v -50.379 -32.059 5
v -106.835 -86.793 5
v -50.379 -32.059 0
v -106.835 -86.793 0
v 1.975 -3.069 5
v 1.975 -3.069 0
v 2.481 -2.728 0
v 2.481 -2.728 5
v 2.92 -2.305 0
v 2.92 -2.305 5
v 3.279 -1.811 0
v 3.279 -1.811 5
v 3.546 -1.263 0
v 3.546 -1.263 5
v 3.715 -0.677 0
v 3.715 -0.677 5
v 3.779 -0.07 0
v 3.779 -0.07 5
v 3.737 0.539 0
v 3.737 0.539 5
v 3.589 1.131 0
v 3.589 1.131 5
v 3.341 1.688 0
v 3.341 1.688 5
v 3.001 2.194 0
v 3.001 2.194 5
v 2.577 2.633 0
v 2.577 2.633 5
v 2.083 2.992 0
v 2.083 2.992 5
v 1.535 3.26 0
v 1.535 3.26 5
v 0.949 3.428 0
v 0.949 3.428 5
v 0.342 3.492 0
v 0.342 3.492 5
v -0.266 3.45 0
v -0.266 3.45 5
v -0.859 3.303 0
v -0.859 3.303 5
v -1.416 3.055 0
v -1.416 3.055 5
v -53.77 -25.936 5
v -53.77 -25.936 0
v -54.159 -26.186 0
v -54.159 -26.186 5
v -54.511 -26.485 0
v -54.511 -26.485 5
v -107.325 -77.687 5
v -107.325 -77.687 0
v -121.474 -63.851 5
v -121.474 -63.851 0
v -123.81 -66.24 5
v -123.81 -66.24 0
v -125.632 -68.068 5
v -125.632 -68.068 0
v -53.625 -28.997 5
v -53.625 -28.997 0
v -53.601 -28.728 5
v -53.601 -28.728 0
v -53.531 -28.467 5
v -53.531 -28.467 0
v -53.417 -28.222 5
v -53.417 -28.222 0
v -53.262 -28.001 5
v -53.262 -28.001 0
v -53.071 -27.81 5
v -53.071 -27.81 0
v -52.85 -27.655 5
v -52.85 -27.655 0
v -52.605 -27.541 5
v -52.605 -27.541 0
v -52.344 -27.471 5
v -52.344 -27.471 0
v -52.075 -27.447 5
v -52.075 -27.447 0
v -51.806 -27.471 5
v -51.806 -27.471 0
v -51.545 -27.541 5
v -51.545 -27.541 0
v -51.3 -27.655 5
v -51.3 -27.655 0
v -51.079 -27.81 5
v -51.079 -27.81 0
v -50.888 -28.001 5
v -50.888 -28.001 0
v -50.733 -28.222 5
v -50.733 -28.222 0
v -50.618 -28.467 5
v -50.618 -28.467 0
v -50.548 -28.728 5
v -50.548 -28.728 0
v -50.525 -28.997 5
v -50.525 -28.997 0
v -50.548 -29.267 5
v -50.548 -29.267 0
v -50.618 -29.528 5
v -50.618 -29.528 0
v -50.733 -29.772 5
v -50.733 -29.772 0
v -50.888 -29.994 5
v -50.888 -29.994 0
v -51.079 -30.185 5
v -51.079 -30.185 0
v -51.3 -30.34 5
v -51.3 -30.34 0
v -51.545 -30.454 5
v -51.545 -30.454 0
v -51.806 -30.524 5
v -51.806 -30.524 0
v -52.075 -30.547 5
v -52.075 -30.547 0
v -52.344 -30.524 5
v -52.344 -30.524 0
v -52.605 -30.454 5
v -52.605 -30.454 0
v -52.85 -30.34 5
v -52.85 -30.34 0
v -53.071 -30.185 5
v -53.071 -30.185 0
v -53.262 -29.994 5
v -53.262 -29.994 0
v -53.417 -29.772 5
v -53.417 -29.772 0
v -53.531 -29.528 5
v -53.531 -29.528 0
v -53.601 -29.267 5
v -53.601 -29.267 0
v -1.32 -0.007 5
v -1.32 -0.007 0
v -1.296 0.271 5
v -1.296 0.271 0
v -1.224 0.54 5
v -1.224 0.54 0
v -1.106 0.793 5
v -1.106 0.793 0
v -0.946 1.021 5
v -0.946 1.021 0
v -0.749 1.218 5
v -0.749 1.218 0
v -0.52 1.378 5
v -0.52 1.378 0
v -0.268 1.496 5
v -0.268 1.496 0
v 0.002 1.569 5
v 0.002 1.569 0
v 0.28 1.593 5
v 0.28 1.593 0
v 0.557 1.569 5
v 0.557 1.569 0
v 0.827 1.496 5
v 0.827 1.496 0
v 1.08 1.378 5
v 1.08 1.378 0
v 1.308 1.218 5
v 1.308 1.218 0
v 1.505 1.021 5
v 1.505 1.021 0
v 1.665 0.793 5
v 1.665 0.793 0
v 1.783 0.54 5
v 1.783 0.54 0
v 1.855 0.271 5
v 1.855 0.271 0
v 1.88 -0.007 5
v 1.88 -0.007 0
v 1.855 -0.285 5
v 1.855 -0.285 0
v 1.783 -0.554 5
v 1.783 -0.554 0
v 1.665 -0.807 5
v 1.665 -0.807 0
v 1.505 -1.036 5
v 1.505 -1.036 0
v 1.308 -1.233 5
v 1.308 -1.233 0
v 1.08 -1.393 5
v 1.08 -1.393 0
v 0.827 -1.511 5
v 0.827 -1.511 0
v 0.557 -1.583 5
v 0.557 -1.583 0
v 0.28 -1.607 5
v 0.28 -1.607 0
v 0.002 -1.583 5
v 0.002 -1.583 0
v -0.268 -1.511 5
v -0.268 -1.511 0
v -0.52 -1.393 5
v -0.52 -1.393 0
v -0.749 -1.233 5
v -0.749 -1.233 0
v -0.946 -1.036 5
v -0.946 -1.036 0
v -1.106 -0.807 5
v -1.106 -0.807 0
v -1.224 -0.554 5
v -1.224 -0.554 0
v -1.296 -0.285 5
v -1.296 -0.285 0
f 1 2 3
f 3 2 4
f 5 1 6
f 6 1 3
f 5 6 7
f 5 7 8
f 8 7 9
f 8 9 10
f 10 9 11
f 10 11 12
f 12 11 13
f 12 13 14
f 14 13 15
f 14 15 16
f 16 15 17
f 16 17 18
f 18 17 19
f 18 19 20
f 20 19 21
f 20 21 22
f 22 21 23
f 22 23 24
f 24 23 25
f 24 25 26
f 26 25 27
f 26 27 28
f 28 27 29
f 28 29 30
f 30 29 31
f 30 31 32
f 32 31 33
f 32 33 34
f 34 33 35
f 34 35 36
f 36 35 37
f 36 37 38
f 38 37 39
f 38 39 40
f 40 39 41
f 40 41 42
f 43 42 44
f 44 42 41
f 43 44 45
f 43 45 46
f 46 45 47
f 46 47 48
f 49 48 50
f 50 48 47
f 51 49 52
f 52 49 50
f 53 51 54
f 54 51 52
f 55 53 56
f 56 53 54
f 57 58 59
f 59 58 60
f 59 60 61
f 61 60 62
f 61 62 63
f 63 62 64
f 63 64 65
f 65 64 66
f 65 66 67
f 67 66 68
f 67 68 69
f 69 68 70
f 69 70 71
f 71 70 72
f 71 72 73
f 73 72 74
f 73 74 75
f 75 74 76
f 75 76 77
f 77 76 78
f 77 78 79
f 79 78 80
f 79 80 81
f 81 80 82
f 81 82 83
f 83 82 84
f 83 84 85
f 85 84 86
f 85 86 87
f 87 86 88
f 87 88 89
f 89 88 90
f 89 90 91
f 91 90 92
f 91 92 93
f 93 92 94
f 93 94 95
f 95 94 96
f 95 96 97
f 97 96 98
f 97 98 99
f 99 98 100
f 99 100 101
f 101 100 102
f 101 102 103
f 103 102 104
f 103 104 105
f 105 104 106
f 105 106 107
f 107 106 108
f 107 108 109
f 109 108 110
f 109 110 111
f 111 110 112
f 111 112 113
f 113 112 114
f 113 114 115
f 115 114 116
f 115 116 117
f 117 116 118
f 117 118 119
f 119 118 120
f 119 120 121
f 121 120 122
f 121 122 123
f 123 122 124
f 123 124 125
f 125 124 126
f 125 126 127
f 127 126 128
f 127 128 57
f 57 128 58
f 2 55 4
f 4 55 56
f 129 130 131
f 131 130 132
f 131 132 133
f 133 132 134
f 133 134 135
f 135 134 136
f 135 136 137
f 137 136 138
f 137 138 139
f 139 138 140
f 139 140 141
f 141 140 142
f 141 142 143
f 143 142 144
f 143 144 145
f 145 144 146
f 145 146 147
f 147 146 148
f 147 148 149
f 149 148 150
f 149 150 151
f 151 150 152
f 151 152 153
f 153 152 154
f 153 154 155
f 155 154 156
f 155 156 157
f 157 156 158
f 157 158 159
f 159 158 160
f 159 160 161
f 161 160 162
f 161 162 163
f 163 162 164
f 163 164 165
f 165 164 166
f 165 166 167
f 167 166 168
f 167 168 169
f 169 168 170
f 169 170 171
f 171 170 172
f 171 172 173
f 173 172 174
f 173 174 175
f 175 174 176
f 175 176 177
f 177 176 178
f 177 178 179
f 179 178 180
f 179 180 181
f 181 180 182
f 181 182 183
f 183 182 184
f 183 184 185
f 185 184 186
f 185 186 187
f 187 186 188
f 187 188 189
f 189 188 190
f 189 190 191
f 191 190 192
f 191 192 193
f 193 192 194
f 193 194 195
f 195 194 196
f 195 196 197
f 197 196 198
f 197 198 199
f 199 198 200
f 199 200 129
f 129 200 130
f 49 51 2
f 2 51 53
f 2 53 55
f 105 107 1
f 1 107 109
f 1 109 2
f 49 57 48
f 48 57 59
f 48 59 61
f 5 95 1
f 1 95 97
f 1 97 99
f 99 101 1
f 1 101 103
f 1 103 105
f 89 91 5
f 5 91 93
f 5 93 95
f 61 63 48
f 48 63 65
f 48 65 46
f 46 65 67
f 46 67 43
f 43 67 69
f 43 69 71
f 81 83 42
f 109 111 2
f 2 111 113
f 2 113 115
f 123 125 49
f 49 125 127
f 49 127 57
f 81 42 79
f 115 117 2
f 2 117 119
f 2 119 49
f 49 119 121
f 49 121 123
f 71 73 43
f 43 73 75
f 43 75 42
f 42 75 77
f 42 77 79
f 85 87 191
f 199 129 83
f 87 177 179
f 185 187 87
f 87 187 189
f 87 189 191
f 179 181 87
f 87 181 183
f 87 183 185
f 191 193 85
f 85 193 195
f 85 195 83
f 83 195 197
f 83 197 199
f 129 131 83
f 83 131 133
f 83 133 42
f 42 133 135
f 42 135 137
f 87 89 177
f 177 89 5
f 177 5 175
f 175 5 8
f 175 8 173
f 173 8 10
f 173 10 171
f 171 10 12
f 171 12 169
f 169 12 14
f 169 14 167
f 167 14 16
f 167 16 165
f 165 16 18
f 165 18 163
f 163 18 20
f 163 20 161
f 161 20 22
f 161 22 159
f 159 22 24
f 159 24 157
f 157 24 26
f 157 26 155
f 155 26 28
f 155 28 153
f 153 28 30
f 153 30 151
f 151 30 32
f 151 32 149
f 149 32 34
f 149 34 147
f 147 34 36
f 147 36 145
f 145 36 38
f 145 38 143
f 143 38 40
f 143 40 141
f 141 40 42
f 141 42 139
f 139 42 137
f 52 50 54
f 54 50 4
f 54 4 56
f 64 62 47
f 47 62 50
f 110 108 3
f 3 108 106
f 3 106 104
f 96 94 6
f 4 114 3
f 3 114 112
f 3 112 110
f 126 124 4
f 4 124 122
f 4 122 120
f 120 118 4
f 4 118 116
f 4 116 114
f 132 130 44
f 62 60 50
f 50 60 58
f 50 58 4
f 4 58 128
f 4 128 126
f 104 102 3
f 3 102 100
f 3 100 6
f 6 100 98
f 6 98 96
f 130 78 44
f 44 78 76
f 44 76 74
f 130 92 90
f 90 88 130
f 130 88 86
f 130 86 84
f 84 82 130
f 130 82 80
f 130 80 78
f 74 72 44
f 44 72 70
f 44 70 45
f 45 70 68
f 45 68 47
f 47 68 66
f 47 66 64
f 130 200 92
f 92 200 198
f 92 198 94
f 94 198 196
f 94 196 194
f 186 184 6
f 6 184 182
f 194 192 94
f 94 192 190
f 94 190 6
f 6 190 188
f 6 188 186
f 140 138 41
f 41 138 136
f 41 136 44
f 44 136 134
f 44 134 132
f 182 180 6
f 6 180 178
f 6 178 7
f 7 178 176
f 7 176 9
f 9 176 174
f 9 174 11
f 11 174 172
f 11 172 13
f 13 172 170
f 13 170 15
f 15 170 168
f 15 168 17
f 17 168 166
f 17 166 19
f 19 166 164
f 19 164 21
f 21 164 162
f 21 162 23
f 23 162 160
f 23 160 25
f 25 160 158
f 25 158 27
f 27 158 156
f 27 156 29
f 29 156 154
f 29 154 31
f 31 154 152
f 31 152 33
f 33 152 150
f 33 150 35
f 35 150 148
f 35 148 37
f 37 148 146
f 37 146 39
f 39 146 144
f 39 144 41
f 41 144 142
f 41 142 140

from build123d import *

# Parameters (mm, degrees)
SKETCH1_R           = 3.5
SKETCH1_R_2         = 1.55
SKETCH1_R_3         = 1.6
BOSS_EXTRUDE1_DEPTH = 5


with BuildPart() as part:
    # Sketch1 → Boss-Extrude1 (new body)
    # profile 1 of 4: a face of its own
    with BuildSketch(Plane.XY):
        with BuildLine():
            ThreePointArc((-50.379412597, -32.059346711), (-54.886807697, -31.081444916), (-54.511132434, -26.484514353))
            Line((-54.511132434, -26.484514353), (-107.325001283, -77.686959994))
            Line((-107.325001283, -77.686959994), (-121.473901164, -63.850866788))
            Line((-121.473901164, -63.850866788), (-123.810410836, -66.240200318))
            Line((-123.810410836, -66.240200318), (-125.631536255, -68.068297032))
            Line((-125.631536255, -68.068297032), (-106.835385186, -86.792770537))
            Line((-106.835385186, -86.792770537), (-50.379412597, -32.059346711))
        make_face()
    # profile 2 of 4: a face of its own
    with BuildSketch(Plane.XY):
        with BuildLine():
            Line((-1.415959287, 3.054745501), (-53.770371078, -25.935507998))
            ThreePointArc((-53.770371078, -25.935507998), (-50.297840536, -25.982118304), (-48.574891838, -28.997427354))
            ThreePointArc((-48.574891838, -28.997427354), (-49.059582787, -30.774478656), (-50.379412597, -32.059346711))
            Line((-50.379412597, -32.059346711), (1.974999193, -3.069093212))
            ThreePointArc((1.974999193, -3.069093212), (-2.782399403, -1.702653096), (-1.415959287, 3.054745501))
        make_face()
    # profile 3 of 4: a face of its own
    with BuildSketch(Plane.XY):
        with Locations((-52.074891838, -28.997427354)):
            Circle(SKETCH1_R)
        with Locations((-52.074891838, -28.997427354)):
            Circle(SKETCH1_R_2, mode=Mode.SUBTRACT)
    # profile 4 of 4: a face of its own
    with BuildSketch(Plane.XY):
        with Locations((0.279519953, -0.007173855)):
            Circle(SKETCH1_R)
        with Locations((0.279519953, -0.007173855)):
            Circle(SKETCH1_R_3, mode=Mode.SUBTRACT)
    extrude(amount=BOSS_EXTRUDE1_DEPTH)


solid = part.part
